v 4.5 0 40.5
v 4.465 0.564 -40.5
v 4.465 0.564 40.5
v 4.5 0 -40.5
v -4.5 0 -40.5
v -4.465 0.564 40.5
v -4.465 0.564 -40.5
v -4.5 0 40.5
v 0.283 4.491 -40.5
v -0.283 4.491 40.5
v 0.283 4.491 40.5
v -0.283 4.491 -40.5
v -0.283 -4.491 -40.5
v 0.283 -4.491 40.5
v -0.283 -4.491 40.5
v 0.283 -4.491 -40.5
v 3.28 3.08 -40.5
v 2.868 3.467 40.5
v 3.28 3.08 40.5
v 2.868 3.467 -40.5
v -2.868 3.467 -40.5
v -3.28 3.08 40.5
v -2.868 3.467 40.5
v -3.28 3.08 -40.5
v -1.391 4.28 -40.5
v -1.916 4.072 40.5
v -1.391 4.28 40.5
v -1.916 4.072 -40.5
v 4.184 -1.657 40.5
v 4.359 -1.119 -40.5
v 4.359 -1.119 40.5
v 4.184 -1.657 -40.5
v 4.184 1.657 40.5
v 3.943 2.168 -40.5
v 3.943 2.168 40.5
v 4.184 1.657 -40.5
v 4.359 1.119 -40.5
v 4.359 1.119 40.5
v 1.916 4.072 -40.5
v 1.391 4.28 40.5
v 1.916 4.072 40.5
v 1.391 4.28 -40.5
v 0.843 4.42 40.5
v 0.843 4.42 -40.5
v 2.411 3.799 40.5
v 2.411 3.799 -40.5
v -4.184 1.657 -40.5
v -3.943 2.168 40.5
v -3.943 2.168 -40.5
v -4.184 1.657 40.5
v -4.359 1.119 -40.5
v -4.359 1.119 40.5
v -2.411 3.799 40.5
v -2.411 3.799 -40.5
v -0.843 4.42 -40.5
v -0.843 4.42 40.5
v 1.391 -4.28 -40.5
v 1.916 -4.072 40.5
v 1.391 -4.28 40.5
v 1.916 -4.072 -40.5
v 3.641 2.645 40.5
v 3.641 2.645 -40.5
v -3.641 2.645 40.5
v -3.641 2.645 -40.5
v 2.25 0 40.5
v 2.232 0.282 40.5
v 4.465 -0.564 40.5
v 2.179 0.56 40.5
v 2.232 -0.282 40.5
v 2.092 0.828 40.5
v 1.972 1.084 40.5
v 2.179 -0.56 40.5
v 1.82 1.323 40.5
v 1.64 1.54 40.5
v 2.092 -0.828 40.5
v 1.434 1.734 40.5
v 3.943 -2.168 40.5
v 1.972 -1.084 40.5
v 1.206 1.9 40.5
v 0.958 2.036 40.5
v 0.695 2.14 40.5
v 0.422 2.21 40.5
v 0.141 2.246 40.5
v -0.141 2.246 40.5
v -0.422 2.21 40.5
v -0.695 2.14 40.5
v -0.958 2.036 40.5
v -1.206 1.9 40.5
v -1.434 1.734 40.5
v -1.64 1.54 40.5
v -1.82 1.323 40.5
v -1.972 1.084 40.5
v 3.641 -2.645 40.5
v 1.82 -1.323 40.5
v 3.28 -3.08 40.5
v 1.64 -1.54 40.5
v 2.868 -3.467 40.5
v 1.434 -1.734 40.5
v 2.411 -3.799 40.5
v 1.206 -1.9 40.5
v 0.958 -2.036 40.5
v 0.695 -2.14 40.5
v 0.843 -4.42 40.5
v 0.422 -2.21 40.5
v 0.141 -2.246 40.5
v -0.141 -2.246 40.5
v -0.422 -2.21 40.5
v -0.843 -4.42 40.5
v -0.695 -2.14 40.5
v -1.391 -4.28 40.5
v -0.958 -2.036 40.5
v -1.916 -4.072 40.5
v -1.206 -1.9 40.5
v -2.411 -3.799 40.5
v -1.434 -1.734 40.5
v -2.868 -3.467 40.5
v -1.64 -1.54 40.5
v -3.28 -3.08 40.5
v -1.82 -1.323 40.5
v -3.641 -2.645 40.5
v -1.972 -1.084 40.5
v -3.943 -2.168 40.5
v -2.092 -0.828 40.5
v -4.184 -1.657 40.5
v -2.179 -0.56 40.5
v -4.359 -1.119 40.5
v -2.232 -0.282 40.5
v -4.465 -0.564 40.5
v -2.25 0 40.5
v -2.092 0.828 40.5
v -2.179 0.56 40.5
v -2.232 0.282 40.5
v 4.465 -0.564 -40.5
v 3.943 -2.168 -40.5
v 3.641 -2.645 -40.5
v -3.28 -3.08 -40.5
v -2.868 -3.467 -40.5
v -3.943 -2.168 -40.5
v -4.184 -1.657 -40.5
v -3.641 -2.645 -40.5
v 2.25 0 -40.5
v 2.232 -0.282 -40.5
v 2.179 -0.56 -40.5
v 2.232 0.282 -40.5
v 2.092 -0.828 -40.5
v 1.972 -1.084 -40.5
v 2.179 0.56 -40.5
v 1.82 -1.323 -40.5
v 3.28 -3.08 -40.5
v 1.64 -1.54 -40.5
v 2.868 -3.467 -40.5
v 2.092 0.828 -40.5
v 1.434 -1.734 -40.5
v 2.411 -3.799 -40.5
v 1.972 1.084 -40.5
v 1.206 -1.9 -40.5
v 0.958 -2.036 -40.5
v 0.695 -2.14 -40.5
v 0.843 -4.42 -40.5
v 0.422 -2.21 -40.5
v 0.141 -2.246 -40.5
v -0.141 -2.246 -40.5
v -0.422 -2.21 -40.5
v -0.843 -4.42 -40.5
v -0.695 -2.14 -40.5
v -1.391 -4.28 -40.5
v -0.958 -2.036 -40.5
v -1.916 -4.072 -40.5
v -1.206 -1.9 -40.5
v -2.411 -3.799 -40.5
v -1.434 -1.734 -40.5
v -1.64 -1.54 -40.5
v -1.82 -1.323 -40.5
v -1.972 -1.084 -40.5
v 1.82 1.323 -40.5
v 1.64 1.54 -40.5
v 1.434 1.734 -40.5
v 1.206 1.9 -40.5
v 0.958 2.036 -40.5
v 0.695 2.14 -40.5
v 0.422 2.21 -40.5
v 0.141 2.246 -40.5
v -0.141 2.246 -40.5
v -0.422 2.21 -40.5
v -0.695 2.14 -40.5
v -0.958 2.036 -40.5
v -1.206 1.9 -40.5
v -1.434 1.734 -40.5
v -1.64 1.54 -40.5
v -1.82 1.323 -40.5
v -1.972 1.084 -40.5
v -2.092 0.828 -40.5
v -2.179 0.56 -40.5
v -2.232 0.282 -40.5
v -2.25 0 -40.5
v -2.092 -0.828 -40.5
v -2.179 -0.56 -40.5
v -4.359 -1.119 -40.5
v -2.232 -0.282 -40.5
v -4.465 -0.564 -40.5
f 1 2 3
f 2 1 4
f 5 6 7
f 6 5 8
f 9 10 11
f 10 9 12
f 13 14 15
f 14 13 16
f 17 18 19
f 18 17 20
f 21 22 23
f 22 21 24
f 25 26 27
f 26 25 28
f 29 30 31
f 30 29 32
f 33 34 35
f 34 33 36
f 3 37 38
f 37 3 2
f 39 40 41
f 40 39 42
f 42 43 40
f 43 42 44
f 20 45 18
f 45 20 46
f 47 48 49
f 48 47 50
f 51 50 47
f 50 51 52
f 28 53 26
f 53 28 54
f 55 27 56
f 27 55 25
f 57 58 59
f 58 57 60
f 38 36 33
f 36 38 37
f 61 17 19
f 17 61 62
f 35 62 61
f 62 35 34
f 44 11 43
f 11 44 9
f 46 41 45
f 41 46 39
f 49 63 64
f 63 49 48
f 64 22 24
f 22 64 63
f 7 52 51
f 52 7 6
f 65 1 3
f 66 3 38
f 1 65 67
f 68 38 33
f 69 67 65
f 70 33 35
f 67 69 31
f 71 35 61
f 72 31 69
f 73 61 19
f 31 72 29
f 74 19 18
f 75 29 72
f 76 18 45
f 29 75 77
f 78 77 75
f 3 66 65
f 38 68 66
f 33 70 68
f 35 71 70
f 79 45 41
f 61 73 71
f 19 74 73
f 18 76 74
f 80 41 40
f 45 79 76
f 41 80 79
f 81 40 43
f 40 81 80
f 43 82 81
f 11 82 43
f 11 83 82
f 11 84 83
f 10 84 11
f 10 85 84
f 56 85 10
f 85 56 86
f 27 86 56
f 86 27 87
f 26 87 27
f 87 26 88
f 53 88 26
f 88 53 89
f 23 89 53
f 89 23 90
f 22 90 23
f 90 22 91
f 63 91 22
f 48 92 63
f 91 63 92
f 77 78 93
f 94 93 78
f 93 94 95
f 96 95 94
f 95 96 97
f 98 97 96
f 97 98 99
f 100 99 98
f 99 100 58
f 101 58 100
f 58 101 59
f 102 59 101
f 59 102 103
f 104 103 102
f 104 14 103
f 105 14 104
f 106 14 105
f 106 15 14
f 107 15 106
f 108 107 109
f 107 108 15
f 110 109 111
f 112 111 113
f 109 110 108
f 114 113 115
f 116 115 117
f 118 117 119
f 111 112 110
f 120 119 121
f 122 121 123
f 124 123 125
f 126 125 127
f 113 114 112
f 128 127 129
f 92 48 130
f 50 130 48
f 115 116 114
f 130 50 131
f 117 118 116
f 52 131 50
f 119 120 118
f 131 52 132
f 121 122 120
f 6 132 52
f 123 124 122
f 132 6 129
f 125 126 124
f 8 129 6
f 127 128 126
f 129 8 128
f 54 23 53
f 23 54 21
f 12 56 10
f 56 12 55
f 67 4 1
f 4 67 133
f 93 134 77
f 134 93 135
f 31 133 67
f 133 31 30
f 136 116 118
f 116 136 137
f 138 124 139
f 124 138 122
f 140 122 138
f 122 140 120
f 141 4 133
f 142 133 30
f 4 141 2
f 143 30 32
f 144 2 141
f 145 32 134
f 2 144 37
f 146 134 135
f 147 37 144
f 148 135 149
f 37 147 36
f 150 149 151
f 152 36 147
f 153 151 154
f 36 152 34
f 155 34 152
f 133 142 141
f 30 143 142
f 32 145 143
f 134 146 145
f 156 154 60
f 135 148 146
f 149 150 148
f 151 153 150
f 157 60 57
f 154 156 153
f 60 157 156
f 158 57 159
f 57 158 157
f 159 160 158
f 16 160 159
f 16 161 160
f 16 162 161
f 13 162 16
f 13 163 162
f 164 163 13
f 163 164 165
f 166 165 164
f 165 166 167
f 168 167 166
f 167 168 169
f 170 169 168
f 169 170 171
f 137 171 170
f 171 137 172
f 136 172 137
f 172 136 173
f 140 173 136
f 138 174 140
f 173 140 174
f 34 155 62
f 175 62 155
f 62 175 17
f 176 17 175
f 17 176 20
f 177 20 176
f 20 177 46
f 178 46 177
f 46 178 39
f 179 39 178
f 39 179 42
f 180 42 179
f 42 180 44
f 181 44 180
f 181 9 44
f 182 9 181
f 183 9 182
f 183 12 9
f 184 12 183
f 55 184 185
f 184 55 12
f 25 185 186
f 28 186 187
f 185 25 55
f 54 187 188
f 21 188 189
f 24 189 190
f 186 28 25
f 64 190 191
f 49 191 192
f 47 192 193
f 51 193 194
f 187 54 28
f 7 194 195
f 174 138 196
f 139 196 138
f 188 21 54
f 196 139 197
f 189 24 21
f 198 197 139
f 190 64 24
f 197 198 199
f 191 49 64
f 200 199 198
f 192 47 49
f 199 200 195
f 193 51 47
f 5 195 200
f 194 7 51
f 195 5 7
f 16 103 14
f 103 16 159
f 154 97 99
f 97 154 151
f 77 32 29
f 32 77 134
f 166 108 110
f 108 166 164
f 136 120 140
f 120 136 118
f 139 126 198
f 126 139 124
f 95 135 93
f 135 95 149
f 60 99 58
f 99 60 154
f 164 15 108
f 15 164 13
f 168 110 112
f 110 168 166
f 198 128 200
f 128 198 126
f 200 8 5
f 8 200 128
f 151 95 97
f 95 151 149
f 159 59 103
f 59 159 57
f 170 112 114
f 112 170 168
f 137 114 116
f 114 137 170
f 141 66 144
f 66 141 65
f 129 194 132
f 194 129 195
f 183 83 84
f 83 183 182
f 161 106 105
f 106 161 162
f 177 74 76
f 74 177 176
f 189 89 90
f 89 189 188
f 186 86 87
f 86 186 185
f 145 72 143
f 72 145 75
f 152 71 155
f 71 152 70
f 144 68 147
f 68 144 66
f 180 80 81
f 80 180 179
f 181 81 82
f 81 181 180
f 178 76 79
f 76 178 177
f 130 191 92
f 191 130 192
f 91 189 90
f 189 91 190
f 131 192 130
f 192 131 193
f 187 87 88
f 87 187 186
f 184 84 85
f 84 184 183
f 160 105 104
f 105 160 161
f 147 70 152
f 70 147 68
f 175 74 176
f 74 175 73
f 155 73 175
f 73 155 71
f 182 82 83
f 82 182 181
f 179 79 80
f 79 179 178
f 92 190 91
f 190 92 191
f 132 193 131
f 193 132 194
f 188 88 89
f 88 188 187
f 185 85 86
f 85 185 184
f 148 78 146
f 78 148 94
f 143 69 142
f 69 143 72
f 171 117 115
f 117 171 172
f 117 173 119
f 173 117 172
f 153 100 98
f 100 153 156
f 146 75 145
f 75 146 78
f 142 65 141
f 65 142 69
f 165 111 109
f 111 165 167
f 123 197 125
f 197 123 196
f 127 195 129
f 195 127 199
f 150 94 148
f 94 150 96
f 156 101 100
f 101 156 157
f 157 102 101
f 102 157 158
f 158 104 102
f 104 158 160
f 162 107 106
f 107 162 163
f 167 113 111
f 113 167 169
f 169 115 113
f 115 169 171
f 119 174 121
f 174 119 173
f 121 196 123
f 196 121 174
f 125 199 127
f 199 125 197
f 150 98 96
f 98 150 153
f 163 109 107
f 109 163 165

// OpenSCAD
$fn = 50;


difference() {
	union() {
		translate(v = [0, 0, -40.5000000000]) {
			cylinder(h = 81, r = 4.5000000000);
		}
	}
	union() {
		translate(v = [0, 0, -100.0000000000]) {
			cylinder(h = 200, r = 2.2500000000);
		}
	}
}
